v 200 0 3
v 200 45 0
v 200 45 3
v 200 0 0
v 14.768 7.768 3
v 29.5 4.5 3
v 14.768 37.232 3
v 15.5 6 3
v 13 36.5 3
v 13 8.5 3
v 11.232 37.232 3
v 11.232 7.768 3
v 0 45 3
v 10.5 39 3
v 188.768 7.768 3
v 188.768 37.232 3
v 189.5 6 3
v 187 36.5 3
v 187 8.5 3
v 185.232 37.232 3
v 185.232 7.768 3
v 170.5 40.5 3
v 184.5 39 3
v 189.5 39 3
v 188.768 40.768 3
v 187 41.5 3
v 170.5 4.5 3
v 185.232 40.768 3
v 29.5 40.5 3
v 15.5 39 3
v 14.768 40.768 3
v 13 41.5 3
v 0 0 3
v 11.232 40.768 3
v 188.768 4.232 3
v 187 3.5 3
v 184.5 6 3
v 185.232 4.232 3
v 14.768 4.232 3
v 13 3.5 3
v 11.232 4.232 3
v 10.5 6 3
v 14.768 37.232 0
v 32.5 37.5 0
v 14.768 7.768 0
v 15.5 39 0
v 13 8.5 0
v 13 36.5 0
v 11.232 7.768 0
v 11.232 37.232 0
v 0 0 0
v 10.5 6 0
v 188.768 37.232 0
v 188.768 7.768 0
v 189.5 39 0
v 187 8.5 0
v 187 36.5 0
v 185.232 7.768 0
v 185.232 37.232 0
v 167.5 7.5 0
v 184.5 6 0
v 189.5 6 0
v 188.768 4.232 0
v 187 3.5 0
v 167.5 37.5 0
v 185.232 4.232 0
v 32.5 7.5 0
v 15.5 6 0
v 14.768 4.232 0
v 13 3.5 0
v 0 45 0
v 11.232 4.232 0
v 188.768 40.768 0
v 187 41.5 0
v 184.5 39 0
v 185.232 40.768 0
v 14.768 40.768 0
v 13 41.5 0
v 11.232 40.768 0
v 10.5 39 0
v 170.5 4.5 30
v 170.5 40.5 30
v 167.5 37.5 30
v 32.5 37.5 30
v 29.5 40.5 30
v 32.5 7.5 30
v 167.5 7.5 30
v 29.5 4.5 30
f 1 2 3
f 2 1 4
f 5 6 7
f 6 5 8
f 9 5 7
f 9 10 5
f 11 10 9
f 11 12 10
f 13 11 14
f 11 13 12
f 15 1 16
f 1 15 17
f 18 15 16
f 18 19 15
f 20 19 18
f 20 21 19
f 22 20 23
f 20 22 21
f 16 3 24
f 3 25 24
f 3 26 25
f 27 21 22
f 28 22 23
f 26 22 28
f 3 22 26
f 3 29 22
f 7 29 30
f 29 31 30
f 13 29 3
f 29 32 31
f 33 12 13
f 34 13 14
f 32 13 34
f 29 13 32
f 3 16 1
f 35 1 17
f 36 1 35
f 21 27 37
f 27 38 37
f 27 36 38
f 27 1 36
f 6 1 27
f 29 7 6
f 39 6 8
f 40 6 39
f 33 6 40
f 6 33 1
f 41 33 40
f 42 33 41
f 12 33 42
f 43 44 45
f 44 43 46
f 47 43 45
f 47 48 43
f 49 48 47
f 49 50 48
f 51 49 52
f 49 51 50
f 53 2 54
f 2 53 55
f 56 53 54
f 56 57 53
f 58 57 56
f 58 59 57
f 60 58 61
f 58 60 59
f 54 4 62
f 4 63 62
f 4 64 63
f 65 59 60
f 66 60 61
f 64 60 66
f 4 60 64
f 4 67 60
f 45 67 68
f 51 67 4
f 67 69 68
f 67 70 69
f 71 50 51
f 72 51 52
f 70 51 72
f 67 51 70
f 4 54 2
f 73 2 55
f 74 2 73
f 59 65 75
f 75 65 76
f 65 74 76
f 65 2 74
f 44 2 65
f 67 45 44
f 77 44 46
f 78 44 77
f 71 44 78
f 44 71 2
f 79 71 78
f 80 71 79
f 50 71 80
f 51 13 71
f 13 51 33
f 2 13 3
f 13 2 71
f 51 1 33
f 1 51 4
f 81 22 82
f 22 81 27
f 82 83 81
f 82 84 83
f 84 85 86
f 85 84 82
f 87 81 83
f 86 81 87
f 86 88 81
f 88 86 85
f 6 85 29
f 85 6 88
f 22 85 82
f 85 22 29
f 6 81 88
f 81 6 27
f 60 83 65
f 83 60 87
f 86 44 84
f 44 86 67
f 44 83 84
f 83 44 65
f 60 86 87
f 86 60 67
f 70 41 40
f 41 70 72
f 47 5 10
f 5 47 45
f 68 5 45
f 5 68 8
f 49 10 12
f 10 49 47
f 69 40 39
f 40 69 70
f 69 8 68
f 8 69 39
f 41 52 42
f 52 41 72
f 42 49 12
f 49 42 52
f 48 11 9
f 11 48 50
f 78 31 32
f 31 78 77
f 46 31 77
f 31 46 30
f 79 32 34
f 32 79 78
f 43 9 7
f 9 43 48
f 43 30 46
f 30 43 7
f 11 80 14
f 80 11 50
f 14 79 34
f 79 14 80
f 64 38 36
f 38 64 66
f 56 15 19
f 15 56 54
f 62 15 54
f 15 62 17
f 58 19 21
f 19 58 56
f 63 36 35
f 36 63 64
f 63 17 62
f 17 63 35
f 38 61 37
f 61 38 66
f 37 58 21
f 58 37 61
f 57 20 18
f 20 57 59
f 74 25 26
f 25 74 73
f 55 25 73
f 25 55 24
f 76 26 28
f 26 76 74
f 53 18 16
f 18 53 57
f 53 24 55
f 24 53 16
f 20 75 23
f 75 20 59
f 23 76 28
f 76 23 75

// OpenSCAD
// Rack for Ubiquity Security Gateway

difference(){
difference(){

union(){
//faceplate
cube([200,45,3]);
    
//USG support    
translate([(200-135)/2-3,15/2-3,0]) cube([135+6,30+6,30]);
}

// USG face/hole
translate([(200-135)/2,15/2,-2]) cube([135,30,60]);
}


//holes
union(){
translate([13,6,-1]) cylinder(10,2.5,2.5);

translate([13,45-6,-1]) cylinder(10,2.5,2.5);

translate([200-13,6,-1]) cylinder(10,2.5,2.5);

translate([200-13,45-6,-1]) cylinder(10,2.5,2.5);
}
}
